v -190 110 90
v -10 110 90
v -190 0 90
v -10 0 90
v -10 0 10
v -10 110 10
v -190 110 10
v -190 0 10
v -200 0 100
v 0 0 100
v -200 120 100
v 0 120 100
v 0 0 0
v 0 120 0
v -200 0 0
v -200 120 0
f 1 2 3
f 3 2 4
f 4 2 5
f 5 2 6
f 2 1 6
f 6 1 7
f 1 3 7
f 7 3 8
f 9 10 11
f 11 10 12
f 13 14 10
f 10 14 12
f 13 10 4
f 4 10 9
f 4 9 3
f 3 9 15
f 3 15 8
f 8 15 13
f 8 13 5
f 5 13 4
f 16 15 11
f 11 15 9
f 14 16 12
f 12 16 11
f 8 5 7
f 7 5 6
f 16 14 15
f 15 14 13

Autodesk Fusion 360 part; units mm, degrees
sketch "スケッチ1" plane through (0, 0, 0) normal (0, 0, 1) x (1, 0, 0)
  line L0 (0, 0) -> (-200, 0)
  line L1 (-200, 0) -> (-200, 120)
  line L2 (-200, 120) -> (0, 120)
  line L3 (0, 120) -> (0, 0)
  dimension "d1" = 200
  dimension "d2" = 120
extrude "押し出し1" add sketch "スケッチ1" along normal blind 10
sketch "スケッチ2" plane through (0, 0, 10) normal (0, 0, 1) x (-1, 0, 0)
  line L0 (0, -120) -> (200, -120)
  line L1 (200, -120) -> (200, 0)
  line L2 (200, 0) -> (0, 0)
  line L3 (0, 0) -> (0, -120)
  line L4 (190, 0) -> (190, -110)
  line L5 (190, -110) -> (10, -110)
  line L6 (10, -110) -> (10, 0)
extrude "押し出し2" add sketch "スケッチ2" along normal blind 90 contours L0 L1 L2 L3 L4 L5 L6
sketch "スケッチ3" plane through (0, 110, 0) normal (0, -1, 0) x (1, 0, 0)
  line L0 (-190, 10) -> (-10, 10)
  line L1 (-10, 10) -> (-10, 100)
  line L2 (-10, 100) -> (-190, 100)
  line L3 (-190, 100) -> (-190, 10)
  line L4 (-190, 90) -> (-10, 90)
  line L5 (-10, 90) -> (-10, 100)
  line L6 (-10, 100) -> (-190, 100)
  line L7 (-190, 100) -> (-190, 90)
extrude "押し出し3" add sketch "スケッチ3" along normal blind 110 contours L1 L2 L3 L4 L5 L6 L7
